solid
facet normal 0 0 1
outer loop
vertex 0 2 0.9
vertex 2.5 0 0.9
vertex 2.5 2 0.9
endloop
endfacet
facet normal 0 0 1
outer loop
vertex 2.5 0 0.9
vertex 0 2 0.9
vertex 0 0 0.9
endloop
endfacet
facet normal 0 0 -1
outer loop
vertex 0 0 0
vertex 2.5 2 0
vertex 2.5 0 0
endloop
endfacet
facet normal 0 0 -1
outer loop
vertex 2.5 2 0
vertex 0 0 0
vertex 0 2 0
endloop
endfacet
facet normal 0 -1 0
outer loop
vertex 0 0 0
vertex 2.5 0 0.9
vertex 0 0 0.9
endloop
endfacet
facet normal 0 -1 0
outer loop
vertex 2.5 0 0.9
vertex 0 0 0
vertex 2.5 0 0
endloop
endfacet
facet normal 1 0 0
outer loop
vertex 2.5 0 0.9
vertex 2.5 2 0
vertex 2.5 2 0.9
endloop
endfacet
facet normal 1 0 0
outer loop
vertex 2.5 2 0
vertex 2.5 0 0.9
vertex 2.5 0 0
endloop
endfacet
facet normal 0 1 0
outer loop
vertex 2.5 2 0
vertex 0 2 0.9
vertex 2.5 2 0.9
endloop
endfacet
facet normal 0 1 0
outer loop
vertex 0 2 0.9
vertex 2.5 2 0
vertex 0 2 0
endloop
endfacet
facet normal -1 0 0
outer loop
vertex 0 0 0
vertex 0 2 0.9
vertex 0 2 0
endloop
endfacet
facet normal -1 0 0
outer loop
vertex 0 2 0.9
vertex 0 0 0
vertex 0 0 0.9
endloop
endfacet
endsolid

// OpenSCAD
/* Warning, this is a very basic generator with a lot of approximation 
input data : [VDFN, 9RX, 2.5x2x0.9mm, 10, , B, C04-00332B]
generated by com.zoubworld.electronics.cad.model3d.Basic
Date : Sun Feb 15 10:50:48 CET 2026
*/

//body
color("black")
translate([0,0,0])
cube([2.5,2.0,0.9], center=false);
